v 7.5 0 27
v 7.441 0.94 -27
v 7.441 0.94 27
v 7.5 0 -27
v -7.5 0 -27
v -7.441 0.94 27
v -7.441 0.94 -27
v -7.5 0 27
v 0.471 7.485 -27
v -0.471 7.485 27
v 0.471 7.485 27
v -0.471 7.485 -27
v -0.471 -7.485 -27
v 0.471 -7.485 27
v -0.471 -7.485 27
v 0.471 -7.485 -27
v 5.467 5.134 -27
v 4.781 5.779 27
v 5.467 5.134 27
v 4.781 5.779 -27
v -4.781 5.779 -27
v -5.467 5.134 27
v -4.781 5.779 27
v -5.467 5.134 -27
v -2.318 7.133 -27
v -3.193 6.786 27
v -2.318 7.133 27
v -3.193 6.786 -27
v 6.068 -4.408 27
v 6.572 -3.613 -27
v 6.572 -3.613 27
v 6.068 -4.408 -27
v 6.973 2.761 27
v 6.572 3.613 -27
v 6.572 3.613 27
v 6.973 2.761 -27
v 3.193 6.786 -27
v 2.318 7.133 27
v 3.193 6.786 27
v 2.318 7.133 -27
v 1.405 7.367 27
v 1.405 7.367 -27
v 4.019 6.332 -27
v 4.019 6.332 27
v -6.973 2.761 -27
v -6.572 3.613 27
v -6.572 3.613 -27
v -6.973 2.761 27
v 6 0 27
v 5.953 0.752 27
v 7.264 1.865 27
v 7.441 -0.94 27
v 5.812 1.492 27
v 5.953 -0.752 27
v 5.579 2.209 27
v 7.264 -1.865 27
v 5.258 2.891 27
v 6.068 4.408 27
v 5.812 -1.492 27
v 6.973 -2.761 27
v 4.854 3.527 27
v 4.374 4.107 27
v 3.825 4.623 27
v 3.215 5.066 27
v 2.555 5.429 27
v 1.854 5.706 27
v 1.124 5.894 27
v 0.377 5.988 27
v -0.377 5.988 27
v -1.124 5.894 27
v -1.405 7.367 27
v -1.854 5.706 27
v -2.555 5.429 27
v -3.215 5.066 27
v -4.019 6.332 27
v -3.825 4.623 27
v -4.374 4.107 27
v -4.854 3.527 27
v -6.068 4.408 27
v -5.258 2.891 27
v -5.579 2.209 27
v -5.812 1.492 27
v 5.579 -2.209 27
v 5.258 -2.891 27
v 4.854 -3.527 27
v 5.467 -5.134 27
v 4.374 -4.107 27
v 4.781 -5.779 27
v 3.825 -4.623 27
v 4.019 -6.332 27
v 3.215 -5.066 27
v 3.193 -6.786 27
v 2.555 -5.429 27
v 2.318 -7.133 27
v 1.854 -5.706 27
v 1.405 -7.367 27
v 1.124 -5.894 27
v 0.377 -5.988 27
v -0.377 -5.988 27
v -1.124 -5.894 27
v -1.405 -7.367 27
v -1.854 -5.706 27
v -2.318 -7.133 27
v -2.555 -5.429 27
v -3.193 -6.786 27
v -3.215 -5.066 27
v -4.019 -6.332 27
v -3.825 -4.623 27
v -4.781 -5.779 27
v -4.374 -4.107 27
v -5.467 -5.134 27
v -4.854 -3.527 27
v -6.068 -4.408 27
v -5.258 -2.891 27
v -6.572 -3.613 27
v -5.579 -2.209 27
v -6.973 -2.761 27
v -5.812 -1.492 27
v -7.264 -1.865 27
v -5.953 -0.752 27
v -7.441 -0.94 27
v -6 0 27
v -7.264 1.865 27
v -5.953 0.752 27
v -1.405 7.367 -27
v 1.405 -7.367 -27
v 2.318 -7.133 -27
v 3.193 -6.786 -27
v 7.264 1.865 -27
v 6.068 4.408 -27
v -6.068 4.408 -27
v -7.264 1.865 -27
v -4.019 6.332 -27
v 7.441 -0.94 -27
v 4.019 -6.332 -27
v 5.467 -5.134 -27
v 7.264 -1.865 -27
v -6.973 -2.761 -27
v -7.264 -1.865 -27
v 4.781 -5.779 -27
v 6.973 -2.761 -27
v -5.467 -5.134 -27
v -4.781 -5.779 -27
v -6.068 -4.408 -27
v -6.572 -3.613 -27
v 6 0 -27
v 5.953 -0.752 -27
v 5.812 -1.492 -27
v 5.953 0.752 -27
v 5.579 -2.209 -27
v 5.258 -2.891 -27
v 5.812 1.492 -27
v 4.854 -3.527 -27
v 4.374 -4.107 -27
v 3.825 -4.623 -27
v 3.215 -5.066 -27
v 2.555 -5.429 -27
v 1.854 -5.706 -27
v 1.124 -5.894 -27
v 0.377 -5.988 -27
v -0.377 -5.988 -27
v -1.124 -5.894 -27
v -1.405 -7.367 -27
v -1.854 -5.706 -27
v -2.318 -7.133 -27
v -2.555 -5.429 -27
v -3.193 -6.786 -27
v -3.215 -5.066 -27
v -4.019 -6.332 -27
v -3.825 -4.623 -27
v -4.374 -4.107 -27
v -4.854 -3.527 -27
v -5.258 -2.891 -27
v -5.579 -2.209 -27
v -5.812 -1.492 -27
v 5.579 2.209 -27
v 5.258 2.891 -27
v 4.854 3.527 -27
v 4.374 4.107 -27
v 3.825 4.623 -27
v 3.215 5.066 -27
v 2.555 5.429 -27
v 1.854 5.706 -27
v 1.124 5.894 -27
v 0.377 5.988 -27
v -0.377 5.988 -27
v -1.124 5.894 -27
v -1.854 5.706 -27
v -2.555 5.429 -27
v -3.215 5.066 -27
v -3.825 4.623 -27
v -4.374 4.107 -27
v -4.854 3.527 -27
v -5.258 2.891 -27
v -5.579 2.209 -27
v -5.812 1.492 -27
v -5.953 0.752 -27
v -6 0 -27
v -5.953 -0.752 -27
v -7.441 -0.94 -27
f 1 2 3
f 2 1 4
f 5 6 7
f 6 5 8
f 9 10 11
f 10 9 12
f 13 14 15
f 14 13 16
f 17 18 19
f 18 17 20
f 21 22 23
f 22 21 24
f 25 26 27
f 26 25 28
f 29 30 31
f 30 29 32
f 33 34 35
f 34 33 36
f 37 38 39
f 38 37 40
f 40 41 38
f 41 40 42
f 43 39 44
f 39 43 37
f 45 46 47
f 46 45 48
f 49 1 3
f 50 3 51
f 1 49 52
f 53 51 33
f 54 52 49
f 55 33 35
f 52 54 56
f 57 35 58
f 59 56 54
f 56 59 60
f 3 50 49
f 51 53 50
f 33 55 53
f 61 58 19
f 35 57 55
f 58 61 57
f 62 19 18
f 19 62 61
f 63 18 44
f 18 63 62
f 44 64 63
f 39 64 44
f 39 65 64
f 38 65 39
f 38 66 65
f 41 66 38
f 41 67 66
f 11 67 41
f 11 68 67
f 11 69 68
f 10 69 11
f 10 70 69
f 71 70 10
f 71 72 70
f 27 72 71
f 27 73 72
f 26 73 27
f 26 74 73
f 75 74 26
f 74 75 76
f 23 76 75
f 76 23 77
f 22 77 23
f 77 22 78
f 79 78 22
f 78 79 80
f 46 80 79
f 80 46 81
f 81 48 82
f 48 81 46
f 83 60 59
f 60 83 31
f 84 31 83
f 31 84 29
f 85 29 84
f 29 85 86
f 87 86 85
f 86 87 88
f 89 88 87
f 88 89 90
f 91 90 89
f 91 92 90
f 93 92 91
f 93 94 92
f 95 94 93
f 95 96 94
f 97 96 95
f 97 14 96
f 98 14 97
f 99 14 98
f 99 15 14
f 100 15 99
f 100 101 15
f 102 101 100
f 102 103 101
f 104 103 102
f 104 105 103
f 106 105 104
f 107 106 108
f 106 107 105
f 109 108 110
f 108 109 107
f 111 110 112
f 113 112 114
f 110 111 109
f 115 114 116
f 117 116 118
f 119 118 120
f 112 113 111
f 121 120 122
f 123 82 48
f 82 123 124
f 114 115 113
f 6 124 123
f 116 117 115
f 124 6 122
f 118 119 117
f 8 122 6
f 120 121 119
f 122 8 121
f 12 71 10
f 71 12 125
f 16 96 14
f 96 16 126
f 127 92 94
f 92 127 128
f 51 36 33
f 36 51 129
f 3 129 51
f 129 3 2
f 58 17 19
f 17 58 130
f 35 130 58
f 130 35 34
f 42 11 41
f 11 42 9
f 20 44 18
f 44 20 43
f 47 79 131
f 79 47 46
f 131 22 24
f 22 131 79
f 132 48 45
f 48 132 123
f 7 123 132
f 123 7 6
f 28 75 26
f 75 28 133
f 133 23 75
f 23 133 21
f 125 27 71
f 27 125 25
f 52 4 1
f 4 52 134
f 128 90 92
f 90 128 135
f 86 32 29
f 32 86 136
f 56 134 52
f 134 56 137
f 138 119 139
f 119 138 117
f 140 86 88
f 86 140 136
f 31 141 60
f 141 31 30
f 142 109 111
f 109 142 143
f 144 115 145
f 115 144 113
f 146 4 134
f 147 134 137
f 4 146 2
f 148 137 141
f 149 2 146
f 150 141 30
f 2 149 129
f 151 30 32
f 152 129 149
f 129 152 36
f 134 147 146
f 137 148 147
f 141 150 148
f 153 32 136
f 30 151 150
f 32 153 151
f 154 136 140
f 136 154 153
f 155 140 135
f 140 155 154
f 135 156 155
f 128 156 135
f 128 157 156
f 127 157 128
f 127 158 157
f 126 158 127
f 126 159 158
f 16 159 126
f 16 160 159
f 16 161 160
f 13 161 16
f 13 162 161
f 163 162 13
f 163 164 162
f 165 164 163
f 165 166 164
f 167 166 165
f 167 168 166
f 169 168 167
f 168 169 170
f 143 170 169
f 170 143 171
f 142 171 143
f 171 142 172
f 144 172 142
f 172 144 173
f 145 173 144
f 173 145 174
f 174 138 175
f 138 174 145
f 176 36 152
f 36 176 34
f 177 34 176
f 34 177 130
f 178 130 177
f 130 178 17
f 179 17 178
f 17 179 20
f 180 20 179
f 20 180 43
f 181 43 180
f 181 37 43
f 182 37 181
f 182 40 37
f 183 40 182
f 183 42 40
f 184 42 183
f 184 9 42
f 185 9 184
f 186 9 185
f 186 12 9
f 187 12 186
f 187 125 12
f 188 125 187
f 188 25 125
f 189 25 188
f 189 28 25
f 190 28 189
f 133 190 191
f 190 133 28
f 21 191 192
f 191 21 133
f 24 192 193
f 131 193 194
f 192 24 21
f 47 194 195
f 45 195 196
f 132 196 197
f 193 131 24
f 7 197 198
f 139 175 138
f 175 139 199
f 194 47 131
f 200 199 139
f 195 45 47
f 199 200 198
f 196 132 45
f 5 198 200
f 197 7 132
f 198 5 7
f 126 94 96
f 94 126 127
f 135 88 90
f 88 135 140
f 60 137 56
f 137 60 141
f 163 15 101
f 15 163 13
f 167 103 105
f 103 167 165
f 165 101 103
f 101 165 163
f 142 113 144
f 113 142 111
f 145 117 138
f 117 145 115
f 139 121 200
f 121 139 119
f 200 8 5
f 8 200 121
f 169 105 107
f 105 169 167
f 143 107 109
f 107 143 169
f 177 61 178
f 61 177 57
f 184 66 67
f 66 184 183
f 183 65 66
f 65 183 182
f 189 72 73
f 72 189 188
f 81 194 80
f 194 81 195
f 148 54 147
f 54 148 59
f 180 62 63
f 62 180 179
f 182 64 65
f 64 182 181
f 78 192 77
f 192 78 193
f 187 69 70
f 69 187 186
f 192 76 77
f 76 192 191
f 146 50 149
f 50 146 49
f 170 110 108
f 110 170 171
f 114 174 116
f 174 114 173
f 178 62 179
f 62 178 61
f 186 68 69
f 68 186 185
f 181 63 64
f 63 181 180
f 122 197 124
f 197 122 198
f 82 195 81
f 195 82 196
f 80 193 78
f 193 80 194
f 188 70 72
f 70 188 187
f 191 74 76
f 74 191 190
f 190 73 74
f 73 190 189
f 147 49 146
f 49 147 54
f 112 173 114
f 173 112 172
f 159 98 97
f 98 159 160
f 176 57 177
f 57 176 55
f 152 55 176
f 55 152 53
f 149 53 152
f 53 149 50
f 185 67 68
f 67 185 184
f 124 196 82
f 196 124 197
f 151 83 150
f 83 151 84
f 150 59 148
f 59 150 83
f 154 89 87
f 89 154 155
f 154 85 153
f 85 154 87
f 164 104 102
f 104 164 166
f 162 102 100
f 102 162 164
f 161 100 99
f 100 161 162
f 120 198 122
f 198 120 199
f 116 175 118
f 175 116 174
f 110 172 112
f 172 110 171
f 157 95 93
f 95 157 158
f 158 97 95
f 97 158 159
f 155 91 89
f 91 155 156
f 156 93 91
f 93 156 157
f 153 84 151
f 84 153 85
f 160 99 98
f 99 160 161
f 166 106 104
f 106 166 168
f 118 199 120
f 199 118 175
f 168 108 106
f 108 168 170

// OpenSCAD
$fn = 50;


difference() {
	union() {
		translate(v = [0, 0, -27.0000000000]) {
			cylinder(h = 54, r = 7.5000000000);
		}
	}
	union() {
		translate(v = [0, 0, -100.0000000000]) {
			cylinder(h = 200, r = 6);
		}
	}
}
